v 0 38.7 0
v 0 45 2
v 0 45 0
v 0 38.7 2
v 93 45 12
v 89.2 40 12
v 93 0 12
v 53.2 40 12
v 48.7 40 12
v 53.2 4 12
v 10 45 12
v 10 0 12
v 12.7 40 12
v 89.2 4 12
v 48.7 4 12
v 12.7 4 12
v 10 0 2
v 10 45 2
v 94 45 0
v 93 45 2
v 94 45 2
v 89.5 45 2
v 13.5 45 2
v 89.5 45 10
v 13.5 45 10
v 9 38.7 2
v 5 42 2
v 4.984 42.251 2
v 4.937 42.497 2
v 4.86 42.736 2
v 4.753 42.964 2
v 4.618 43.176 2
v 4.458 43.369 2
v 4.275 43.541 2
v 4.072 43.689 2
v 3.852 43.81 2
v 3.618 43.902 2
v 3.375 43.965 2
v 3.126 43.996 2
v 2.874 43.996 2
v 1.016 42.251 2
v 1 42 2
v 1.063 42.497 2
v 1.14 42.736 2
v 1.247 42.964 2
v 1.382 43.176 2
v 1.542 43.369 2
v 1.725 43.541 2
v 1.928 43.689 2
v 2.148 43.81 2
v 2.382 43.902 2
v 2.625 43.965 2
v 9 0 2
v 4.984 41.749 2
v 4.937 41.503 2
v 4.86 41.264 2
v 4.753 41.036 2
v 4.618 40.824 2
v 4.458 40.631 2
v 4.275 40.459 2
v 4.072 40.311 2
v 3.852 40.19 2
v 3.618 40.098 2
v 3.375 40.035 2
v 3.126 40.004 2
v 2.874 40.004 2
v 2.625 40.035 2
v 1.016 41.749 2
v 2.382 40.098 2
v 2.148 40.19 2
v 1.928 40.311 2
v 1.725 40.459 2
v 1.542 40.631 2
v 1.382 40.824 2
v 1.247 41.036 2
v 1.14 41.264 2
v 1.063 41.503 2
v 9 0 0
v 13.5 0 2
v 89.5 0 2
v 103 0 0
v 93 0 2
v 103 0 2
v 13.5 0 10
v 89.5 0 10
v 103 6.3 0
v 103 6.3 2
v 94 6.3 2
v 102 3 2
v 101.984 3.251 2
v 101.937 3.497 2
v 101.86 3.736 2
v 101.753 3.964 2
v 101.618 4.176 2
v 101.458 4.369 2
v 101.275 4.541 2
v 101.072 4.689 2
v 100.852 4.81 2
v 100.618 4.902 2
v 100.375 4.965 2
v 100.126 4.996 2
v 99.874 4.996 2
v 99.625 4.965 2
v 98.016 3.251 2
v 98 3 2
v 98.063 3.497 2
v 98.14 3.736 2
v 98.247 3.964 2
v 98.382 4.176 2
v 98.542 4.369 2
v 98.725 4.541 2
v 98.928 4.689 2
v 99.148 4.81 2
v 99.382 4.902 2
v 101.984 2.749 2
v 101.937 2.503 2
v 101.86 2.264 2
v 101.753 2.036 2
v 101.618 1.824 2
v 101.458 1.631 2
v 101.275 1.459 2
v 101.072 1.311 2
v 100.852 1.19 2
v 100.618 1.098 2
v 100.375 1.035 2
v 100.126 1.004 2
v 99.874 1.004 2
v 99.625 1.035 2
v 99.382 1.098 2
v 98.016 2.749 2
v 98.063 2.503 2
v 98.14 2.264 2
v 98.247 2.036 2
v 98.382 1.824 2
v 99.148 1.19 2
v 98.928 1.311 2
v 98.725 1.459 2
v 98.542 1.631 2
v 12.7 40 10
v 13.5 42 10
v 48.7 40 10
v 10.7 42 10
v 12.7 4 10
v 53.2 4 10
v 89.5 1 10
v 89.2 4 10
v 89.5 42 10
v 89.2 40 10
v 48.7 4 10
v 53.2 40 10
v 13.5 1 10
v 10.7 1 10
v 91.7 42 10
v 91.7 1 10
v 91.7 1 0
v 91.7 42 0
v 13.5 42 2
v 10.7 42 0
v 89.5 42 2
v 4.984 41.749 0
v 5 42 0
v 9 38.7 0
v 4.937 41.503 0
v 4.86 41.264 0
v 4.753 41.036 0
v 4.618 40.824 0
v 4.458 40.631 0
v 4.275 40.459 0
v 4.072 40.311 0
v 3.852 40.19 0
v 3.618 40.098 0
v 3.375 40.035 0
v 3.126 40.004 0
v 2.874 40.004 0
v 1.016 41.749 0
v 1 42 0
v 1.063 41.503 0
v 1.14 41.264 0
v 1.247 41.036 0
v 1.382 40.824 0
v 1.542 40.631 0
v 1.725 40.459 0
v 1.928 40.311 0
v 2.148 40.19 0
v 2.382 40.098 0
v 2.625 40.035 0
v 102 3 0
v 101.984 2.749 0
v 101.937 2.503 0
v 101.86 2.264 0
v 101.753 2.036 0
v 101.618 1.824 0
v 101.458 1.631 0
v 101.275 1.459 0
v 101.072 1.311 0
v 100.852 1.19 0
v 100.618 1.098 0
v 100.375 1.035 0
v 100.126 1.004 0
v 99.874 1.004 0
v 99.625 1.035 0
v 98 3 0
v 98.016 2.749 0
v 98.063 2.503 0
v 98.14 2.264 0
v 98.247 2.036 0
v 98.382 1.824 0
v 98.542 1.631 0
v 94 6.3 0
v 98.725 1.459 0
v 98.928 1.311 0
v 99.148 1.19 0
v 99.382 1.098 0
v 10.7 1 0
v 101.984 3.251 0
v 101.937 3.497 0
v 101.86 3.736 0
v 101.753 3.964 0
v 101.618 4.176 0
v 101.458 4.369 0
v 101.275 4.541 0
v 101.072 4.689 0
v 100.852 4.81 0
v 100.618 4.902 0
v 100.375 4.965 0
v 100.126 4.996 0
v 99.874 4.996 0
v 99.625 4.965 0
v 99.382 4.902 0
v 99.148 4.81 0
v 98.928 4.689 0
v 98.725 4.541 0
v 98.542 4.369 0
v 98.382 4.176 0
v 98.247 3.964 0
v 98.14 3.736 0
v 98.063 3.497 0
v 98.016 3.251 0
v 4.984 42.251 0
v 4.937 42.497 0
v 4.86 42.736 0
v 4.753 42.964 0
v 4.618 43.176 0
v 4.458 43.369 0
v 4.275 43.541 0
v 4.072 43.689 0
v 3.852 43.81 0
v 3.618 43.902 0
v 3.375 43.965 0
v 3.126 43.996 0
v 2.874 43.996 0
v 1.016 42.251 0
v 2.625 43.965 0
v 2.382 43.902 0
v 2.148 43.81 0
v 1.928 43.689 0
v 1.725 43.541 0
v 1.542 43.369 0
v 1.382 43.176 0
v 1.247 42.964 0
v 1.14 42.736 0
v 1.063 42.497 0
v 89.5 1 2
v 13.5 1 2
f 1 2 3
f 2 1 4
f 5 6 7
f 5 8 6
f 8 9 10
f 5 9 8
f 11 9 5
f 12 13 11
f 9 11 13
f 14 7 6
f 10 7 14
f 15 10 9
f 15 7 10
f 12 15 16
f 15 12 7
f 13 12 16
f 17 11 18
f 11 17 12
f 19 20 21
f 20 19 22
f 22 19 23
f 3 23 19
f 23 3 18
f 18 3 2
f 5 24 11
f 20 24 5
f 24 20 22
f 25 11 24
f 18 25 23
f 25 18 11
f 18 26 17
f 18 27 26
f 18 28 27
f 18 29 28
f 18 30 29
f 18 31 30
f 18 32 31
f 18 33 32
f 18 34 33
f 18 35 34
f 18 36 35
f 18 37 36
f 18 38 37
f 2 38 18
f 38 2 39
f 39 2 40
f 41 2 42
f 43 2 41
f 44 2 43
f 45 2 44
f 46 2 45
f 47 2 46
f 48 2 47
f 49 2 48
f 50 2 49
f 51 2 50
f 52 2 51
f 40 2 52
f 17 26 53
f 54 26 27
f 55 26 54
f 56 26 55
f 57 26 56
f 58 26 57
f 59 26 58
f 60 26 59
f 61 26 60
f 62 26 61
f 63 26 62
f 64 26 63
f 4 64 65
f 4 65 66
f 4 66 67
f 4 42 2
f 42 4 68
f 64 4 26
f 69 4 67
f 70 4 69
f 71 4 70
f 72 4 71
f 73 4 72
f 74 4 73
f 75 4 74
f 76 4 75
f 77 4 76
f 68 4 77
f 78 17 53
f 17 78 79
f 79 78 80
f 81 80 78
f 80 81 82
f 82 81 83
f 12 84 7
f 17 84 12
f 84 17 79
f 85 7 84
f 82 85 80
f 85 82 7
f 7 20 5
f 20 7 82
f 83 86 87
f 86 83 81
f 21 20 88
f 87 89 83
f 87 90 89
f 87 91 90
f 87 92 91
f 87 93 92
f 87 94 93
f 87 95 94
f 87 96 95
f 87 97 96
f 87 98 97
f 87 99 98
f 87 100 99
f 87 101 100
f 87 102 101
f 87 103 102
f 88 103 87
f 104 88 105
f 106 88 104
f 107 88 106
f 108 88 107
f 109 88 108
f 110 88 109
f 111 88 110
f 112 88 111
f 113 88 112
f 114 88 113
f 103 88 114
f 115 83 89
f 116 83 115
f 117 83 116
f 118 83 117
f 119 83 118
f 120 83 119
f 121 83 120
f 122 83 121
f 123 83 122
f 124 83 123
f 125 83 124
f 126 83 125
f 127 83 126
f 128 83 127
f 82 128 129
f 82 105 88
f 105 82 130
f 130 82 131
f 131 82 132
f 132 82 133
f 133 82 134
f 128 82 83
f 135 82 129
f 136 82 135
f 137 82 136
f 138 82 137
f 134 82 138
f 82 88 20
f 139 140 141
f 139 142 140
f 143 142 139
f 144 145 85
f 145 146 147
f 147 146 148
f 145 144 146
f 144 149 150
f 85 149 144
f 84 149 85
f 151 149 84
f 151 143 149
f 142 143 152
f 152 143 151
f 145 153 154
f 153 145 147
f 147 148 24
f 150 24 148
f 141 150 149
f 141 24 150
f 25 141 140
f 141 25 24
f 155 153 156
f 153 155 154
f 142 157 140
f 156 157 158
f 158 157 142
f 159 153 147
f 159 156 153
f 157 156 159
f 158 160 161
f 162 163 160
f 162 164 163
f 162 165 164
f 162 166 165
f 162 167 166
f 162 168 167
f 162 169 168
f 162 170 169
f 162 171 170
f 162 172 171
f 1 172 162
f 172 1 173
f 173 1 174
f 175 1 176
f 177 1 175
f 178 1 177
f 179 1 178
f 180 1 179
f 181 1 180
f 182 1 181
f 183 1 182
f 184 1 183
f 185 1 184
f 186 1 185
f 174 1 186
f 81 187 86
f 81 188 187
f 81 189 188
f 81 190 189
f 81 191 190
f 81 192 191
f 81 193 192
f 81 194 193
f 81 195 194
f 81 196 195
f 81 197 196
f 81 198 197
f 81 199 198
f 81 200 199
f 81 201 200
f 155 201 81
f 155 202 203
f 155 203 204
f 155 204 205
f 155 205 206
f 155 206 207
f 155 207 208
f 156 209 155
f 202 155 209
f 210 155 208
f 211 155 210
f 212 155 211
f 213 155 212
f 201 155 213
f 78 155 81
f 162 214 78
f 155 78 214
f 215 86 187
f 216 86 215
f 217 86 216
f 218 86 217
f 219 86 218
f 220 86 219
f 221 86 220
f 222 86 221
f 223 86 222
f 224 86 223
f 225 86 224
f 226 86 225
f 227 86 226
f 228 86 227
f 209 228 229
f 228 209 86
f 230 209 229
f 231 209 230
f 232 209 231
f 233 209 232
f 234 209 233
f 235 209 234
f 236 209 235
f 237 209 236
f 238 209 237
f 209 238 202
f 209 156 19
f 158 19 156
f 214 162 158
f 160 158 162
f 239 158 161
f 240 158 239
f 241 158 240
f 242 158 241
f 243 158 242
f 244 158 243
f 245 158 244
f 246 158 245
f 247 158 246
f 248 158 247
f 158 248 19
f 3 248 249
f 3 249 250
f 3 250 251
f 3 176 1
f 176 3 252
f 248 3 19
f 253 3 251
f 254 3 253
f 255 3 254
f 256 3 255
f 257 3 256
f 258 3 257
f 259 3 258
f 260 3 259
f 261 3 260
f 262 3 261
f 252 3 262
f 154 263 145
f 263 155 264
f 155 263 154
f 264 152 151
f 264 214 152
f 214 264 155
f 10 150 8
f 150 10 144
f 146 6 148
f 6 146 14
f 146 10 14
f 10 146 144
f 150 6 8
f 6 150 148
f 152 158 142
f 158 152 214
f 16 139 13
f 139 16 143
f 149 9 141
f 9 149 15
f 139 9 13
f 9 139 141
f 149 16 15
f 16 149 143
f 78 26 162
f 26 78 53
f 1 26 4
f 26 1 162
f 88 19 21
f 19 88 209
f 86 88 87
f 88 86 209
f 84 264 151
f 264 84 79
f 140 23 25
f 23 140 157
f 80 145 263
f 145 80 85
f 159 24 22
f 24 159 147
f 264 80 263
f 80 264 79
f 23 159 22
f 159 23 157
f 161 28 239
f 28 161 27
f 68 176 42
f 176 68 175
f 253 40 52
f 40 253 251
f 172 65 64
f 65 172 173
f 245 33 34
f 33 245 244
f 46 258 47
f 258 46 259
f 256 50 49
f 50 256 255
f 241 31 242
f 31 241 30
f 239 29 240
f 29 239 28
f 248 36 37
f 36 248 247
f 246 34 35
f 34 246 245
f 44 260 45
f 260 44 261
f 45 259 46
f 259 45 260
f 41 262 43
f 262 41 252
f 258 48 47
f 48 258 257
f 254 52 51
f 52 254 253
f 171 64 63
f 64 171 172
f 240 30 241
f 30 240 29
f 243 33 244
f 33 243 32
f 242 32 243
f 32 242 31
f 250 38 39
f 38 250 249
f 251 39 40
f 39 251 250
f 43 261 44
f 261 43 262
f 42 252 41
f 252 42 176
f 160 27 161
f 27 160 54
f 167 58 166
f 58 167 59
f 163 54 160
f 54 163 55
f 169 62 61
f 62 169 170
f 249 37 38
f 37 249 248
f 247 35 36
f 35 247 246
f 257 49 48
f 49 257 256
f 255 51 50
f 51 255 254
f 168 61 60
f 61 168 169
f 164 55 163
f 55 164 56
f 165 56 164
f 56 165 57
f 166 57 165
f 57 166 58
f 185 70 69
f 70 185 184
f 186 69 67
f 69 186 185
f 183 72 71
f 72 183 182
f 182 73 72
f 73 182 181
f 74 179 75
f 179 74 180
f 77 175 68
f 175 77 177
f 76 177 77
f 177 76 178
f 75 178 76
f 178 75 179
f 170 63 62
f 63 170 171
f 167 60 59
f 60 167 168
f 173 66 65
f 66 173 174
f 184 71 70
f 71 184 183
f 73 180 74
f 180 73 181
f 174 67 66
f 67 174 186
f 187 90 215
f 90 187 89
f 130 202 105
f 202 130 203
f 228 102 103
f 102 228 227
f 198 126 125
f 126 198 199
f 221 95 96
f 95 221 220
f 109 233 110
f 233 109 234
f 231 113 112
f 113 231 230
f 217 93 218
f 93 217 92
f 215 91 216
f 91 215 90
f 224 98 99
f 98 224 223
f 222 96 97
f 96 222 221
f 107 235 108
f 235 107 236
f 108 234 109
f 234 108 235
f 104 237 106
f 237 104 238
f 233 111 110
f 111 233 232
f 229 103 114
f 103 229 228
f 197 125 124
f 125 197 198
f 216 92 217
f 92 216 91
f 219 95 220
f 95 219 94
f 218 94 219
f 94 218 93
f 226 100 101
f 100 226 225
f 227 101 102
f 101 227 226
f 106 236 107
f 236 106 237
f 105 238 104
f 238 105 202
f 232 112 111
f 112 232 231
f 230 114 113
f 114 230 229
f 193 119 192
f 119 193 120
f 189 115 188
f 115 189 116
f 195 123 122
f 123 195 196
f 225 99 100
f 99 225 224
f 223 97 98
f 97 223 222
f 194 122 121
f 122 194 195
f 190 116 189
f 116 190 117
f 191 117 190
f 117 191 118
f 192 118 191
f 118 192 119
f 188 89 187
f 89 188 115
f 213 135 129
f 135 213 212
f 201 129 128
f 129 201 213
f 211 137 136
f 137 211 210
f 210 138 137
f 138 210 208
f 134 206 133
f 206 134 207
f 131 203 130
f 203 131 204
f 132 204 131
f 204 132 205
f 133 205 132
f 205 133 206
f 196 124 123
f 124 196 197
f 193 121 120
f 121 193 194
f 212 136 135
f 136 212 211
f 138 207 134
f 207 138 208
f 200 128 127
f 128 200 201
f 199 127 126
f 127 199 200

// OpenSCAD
difference() {
    cube([103,45,12]);
    cube([9,38.7,12]);
    translate([94,6.3,0]) {
        cube([9,38.7,12]);
    }
    translate([0,0,2]) {
        cube([10,45,10]);
        translate([93,0,0]) {
            cube([10,45,10]);
        }
    }
    translate([10.7,1,0]) {
        cube([40.5,41,10]);
        translate([2,3,0]) {
            cube([36,36,12]);
        }
        translate([40.5,0,0]) {
            cube([40.5,41,10]);
            translate([2,3,0]) {
                cube([36,36,12]);
            }
        }
    }
    translate([13.5,0,2]) {
        cube([76,45,8]);
    }
    translate([3,42,0]) {
        cylinder(r=2, h=2, $fn=50);
    }
    translate([100,3,0]) {
        cylinder(r=2, h=2, $fn=50);
    }
}
